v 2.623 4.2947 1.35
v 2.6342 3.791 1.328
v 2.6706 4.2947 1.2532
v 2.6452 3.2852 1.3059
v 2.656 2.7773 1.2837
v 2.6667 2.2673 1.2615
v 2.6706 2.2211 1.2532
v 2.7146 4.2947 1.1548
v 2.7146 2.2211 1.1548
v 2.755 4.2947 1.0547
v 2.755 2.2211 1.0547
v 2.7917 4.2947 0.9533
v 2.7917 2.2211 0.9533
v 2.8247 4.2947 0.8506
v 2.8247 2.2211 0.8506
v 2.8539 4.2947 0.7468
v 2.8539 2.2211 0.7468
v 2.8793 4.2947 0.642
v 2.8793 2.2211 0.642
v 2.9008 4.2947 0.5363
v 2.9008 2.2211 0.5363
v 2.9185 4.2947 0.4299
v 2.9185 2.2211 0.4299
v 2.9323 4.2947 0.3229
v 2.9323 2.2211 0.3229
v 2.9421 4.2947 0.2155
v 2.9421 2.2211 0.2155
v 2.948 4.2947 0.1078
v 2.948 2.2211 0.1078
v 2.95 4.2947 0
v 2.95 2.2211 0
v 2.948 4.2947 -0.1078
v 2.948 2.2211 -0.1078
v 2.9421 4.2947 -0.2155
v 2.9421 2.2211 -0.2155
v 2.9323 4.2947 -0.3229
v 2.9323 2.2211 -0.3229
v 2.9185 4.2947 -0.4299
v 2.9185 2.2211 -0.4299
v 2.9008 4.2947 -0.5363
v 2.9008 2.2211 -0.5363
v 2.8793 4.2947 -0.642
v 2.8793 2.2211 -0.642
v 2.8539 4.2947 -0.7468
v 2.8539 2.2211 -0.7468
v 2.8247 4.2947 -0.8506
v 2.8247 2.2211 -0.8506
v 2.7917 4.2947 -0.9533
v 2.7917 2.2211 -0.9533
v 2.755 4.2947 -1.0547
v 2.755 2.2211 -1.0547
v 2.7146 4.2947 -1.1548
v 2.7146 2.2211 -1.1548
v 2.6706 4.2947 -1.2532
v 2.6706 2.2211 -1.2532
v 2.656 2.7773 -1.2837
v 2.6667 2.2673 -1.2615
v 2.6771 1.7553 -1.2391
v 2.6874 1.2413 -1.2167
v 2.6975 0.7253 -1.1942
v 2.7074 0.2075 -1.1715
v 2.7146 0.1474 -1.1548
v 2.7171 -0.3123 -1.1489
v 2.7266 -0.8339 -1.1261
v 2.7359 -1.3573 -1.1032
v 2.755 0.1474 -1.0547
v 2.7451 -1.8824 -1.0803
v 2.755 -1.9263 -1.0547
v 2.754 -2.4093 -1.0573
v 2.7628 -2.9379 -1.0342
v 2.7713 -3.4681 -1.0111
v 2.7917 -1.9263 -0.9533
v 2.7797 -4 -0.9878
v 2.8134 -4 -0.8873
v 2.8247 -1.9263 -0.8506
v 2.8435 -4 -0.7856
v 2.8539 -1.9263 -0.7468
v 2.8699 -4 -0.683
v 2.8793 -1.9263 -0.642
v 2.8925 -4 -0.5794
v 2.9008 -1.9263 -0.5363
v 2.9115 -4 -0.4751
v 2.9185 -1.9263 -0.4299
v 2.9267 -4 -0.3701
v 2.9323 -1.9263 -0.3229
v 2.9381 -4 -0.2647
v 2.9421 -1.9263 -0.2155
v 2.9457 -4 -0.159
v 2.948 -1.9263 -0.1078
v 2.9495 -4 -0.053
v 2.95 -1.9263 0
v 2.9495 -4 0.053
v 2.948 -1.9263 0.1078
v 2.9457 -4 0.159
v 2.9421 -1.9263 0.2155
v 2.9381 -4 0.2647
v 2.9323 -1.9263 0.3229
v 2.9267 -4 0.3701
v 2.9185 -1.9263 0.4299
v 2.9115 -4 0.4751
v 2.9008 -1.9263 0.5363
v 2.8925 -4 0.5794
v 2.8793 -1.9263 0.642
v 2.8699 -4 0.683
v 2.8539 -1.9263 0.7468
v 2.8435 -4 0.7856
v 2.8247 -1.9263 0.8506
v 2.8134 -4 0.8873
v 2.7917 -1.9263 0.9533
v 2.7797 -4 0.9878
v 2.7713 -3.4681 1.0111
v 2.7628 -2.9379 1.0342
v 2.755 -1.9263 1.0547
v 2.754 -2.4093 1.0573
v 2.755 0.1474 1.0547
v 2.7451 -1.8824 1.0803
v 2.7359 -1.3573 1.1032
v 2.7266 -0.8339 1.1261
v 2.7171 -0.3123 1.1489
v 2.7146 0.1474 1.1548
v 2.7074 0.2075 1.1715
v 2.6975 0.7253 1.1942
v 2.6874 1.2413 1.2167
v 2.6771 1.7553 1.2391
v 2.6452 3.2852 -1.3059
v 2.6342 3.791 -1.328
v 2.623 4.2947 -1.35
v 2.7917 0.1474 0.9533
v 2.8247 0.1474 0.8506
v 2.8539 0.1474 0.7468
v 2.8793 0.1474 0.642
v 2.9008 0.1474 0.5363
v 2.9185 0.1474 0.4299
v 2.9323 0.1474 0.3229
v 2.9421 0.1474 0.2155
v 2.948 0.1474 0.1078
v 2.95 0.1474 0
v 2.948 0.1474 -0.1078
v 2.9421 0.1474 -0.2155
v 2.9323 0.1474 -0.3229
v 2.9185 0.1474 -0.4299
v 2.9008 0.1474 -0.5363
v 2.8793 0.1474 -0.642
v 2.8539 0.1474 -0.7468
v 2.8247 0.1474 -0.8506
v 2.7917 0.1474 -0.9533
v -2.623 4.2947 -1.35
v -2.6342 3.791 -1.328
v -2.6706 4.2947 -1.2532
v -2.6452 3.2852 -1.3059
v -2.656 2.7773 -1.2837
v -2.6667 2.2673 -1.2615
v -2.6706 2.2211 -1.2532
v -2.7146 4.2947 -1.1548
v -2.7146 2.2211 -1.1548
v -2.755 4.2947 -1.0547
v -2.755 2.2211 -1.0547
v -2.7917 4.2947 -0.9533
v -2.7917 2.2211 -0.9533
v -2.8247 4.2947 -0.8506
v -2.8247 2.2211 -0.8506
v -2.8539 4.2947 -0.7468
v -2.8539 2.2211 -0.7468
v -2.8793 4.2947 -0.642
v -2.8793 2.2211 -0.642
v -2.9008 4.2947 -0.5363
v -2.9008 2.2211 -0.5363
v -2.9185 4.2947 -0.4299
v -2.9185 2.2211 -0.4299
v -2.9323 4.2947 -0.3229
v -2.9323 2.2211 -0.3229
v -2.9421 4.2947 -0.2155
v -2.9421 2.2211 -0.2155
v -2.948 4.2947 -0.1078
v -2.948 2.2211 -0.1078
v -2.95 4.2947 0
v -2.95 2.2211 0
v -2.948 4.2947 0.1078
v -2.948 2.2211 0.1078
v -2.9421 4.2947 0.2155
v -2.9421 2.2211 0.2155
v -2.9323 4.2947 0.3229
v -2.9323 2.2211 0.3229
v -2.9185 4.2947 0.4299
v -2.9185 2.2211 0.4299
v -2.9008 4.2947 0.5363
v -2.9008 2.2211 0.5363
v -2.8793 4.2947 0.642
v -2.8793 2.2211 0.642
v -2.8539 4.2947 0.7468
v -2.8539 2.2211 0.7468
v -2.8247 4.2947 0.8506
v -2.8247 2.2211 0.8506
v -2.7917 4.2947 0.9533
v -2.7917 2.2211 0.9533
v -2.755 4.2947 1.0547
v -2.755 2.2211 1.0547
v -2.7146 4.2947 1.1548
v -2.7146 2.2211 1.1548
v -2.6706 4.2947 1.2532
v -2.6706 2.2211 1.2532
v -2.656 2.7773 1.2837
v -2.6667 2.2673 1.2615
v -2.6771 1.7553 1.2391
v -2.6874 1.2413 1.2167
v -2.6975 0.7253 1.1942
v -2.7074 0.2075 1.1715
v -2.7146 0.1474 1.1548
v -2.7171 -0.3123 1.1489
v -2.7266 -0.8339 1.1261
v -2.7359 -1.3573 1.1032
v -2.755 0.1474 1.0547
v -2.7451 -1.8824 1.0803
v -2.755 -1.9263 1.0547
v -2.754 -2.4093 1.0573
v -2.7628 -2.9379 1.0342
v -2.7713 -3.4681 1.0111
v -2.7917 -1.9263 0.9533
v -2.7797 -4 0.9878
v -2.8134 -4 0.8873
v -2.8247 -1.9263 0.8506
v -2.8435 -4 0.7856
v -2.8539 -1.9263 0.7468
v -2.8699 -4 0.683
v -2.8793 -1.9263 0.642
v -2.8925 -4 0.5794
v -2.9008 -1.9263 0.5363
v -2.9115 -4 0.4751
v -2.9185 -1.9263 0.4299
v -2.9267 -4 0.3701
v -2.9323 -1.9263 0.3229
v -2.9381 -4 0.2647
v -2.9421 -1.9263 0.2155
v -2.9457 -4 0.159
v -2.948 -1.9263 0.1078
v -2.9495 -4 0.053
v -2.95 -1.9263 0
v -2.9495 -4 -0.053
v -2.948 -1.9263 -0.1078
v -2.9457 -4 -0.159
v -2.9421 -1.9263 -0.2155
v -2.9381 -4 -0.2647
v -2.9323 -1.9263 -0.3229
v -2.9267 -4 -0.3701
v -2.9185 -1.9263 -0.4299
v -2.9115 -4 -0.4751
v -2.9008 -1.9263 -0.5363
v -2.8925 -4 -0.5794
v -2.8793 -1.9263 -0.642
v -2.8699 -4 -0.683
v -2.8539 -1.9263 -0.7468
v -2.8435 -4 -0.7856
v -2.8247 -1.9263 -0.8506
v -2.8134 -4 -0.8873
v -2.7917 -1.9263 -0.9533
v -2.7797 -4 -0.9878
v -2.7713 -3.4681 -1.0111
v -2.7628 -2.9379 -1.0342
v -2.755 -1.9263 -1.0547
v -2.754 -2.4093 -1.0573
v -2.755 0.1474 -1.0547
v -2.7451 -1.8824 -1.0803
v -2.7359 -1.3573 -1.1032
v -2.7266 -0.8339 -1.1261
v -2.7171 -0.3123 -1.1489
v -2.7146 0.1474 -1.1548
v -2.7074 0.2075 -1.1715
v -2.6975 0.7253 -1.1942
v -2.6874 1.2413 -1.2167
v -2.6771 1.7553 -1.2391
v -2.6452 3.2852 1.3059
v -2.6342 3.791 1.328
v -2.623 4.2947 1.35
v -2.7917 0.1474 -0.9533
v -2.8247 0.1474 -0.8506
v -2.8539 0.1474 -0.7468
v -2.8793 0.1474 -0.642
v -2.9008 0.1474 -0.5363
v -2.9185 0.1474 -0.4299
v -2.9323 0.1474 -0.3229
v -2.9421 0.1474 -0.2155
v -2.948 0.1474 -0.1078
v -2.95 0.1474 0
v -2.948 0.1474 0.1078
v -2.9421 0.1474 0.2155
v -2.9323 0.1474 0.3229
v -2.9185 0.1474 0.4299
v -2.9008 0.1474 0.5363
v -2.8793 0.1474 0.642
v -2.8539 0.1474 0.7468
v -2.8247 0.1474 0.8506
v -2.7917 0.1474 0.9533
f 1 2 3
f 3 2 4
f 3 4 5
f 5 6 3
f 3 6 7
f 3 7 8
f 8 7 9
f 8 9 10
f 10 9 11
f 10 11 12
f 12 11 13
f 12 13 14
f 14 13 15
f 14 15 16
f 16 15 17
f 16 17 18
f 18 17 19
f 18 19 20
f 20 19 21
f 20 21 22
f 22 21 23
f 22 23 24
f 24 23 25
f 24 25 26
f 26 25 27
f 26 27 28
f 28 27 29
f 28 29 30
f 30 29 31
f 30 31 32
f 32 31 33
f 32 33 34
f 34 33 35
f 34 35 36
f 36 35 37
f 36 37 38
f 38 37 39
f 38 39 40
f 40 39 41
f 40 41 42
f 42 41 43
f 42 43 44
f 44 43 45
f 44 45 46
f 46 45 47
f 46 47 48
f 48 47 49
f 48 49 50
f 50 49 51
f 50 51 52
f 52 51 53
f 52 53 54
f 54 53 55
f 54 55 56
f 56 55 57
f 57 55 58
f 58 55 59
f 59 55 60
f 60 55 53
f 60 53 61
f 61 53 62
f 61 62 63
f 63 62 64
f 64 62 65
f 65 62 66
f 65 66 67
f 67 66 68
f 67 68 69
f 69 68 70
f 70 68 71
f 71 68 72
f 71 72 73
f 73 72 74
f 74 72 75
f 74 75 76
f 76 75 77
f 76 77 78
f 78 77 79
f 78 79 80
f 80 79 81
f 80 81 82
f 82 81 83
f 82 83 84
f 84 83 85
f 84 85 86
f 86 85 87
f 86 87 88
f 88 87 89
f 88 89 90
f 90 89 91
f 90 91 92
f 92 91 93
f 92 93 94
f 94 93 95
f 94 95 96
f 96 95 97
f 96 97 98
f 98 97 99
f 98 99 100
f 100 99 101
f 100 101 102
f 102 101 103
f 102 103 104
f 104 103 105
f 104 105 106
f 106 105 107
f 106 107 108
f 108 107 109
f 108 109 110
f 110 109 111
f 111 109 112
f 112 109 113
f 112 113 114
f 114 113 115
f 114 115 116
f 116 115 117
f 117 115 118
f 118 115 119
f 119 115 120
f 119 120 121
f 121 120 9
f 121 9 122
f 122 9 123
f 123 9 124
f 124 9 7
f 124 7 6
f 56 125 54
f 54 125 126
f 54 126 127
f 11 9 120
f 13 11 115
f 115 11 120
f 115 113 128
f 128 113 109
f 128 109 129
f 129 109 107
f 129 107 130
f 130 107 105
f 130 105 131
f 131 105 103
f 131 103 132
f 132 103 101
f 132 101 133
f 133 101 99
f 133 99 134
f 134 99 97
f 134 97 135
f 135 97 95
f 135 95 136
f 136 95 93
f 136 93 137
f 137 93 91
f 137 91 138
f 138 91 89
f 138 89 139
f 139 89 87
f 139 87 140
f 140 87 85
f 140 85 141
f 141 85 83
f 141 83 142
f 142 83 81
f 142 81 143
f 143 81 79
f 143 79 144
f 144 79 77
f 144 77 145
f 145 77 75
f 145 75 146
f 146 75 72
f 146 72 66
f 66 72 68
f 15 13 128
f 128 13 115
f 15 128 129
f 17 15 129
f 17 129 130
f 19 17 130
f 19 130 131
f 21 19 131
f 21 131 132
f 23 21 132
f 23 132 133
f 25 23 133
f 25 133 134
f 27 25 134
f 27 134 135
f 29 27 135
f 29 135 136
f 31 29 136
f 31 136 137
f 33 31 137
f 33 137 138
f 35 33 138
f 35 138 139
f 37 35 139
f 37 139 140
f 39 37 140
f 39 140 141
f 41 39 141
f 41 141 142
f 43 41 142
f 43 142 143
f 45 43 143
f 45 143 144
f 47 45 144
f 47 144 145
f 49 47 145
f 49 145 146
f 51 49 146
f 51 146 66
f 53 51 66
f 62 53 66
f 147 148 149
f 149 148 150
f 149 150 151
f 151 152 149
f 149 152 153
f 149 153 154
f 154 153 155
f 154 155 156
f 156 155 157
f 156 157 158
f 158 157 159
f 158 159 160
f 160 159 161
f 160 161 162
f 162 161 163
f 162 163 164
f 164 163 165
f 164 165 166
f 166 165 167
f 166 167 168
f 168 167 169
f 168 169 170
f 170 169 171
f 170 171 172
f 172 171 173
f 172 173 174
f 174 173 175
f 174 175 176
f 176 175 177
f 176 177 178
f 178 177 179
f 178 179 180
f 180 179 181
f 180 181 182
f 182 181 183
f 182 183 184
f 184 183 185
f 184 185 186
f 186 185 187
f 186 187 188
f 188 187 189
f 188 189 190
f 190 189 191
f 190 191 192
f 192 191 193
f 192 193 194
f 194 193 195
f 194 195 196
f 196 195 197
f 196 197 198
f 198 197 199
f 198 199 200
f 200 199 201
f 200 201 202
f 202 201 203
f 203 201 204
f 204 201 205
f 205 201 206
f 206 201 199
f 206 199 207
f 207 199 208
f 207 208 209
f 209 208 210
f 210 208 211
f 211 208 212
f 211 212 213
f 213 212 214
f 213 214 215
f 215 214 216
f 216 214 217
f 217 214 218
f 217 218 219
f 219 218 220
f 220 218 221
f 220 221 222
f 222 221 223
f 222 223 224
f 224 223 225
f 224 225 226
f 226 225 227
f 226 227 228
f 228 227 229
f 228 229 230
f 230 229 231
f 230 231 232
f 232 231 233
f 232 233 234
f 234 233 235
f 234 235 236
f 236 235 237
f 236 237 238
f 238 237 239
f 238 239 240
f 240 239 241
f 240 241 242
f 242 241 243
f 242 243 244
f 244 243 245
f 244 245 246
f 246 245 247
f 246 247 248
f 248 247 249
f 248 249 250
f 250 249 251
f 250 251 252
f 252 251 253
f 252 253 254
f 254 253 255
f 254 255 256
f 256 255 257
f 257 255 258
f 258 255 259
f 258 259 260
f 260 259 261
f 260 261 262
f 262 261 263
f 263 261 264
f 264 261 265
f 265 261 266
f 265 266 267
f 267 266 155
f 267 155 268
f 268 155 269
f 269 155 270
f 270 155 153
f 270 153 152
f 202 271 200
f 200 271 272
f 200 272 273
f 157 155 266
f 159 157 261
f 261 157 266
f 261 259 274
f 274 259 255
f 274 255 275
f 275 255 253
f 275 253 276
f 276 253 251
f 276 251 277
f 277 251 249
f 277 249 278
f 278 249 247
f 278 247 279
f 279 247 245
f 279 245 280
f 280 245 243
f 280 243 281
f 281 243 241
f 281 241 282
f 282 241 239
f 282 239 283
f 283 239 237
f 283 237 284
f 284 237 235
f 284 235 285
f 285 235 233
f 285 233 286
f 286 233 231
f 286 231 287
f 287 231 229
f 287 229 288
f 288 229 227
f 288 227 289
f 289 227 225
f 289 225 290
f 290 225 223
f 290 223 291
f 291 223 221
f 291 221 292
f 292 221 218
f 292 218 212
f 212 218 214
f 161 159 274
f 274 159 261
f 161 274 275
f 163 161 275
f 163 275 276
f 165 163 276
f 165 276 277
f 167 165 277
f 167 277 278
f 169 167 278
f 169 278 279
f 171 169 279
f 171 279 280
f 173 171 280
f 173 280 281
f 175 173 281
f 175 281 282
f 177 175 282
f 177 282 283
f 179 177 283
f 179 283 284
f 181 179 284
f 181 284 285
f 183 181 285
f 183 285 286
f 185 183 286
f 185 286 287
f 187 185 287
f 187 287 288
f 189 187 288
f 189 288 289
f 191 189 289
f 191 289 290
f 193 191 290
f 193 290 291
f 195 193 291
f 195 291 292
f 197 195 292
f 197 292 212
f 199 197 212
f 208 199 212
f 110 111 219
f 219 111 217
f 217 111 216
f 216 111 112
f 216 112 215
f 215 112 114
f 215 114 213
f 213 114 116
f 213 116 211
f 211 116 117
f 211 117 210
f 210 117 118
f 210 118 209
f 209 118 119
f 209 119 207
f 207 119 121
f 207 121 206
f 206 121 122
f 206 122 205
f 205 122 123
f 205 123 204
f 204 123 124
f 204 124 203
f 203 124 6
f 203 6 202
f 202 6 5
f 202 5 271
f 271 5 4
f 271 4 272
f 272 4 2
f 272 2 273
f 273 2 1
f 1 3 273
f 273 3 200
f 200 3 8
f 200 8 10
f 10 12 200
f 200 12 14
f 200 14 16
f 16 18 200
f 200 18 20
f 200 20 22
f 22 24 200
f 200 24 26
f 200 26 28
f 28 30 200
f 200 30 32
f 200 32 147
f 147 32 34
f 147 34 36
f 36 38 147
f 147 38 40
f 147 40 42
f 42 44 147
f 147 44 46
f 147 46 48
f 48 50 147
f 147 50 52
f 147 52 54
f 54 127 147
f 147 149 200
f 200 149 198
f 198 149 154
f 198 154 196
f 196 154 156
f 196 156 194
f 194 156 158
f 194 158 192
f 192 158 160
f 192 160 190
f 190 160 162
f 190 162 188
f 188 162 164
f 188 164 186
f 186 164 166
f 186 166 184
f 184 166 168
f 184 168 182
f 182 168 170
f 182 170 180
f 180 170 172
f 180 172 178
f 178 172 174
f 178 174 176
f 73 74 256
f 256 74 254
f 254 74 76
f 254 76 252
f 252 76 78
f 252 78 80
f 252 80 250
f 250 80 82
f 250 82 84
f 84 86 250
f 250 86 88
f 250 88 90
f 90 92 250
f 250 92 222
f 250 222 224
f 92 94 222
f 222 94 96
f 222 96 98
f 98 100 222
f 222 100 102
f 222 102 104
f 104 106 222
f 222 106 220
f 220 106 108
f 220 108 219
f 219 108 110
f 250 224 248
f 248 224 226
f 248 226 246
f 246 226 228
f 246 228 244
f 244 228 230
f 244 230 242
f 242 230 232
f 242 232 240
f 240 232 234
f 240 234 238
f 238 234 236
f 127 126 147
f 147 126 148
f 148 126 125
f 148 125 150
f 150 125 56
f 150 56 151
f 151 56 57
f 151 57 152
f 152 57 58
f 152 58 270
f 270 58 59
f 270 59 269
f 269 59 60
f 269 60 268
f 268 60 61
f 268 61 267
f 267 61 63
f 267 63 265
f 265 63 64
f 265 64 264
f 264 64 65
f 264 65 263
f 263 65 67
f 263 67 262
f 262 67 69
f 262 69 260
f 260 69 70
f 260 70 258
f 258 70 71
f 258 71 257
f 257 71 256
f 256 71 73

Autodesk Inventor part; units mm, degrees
ref_plane "YZ Plane" through (0, 0, 0) normal (1, 0, 0) x (0, 1, 0)
ref_plane "XZ Plane" through (0, 0, 0) normal (0, 1, 0) x (-1, 0, 0)
ref_plane "XY Plane" through (0, 0, 0) normal (0, 0, 1) x (1, 0, 0)
sketch "Эскиз1" plane through (0, 0, 0) normal (1, 0, 0) x (0, 1, 0)
  line L0 (4.2947, -1.2) -> (3.8947, -1.2) projected
  line L1 (3.8947, -1.2) -> (0, -1.2) projected
  line L2 (0, -1.2) -> (-1, -1.2) projected
  line L3 (-4, 22.6194) -> (-4, -13.7271) projected
  line L4 (-1, -1.2) -> (-2.2, -1.2) projected
  line L5 (-2.2, -2.95) -> (-2.2, -1.2) projected
  line L6 (-2.2504, -1.2) -> (-4.2, -1.2) projected
  line L7 (-2.2, -1.2) -> (-2.2504, -1.2) projected
  line L8 (-4.2947, 1.2) -> (4.2947, 1.2)
  line L9 (4.2947, 1.2) -> (4.2947, -1.2)
  line L10 (4.2947, -1.2) -> (-4.2947, -1.2)
  line L11 (-4.2947, -1.2) -> (-4.2947, 1.2)
  line L12 (-4.2947, 1.2) -> (4.2947, -1.2) construction
  line L13 (4.2947, 1.2) -> (-4.2947, -1.2) construction
  line L14 (4.2947, -1.35) -> (-4, -0.9878)
  line L15 (4.2947, -1.35) -> (4.2947, -1.2)
  line L16 (-4, -1.2) -> (-4, -0.9878)
  line L17 (4.2947, 0) -> (-4, 0)
  line L18 (4.2947, 1.35) -> (-4, 0.9878)
  line L19 (4.2947, 1.35) -> (4.2947, 1.2)
  point P0 (0, 0)
  point P1 (-4, 0.9878)
  dimension "d0" = 2.5
  dimension "d1" = 0.15
extrude "Выдавливание1" add sketch "Эскиз1" along normal mid plane 6 contours L15 L14 L1 L0 | L0 L1 L14 L3 L17 L9 | L17 L3 L18 L8 L9 | L8 L18 L19
sketch "Эскиз2" plane through (-3, 4.2947, 1.35) normal (0, 1, 0) x (1, 0, 0)
  line L0 (5.25, 0.15) -> (0.75, 0.15) projected
  arc A0 (0.75, 0.15) -> (5.25, 0.15) centre (3, 1.35) ccw projected
  line L1 (0.75, 2.55) -> (5.25, 2.55) projected
  arc A1 (5.25, 2.55) -> (0.75, 2.55) centre (3, 1.35) ccw projected
  circle A2 centre (3, 1.35) radius 2.55
  line L2 (0, 0) -> (6, 0) projected
  line L3 (6, 2.7) -> (6, 0) projected
  line L4 (0, 2.7) -> (6, 2.7) projected
  line L5 (0, 0) -> (0, 2.7) projected
  arc A3 (5.6949, 2.55) -> (0.3051, 2.55) centre (3, 1.35) ccw projected
  arc A4 (0.3051, 0.15) -> (5.6949, 0.15) centre (3, 1.35) ccw projected
  circle A5 centre (3, 1.35) radius 2.95
  point P0 (3, 1.35)
  point P1 (0.8367, 0)
  point P2 (0.8367, 2.7)
  point P3 (5.1633, 2.7)
  point P4 (5.1633, 0)
  point P5 (5.623, 2.7)
  point P6 (5.6949, 0.15)
  point P7 (5.623, 0)
  point P8 (0.377, 0)
  point P9 (0.3051, 0.15)
  point P10 (0.3051, 2.55)
  point P11 (0.377, 2.7)
extrude "Выдавливание2" cut sketch "Эскиз2" against normal blind 10 contours A4 A5 A3 L4 L3 L2 | L2 L5 L4 A3 A5 A4
properties part number "middle_gear_vtilka_shtift"
